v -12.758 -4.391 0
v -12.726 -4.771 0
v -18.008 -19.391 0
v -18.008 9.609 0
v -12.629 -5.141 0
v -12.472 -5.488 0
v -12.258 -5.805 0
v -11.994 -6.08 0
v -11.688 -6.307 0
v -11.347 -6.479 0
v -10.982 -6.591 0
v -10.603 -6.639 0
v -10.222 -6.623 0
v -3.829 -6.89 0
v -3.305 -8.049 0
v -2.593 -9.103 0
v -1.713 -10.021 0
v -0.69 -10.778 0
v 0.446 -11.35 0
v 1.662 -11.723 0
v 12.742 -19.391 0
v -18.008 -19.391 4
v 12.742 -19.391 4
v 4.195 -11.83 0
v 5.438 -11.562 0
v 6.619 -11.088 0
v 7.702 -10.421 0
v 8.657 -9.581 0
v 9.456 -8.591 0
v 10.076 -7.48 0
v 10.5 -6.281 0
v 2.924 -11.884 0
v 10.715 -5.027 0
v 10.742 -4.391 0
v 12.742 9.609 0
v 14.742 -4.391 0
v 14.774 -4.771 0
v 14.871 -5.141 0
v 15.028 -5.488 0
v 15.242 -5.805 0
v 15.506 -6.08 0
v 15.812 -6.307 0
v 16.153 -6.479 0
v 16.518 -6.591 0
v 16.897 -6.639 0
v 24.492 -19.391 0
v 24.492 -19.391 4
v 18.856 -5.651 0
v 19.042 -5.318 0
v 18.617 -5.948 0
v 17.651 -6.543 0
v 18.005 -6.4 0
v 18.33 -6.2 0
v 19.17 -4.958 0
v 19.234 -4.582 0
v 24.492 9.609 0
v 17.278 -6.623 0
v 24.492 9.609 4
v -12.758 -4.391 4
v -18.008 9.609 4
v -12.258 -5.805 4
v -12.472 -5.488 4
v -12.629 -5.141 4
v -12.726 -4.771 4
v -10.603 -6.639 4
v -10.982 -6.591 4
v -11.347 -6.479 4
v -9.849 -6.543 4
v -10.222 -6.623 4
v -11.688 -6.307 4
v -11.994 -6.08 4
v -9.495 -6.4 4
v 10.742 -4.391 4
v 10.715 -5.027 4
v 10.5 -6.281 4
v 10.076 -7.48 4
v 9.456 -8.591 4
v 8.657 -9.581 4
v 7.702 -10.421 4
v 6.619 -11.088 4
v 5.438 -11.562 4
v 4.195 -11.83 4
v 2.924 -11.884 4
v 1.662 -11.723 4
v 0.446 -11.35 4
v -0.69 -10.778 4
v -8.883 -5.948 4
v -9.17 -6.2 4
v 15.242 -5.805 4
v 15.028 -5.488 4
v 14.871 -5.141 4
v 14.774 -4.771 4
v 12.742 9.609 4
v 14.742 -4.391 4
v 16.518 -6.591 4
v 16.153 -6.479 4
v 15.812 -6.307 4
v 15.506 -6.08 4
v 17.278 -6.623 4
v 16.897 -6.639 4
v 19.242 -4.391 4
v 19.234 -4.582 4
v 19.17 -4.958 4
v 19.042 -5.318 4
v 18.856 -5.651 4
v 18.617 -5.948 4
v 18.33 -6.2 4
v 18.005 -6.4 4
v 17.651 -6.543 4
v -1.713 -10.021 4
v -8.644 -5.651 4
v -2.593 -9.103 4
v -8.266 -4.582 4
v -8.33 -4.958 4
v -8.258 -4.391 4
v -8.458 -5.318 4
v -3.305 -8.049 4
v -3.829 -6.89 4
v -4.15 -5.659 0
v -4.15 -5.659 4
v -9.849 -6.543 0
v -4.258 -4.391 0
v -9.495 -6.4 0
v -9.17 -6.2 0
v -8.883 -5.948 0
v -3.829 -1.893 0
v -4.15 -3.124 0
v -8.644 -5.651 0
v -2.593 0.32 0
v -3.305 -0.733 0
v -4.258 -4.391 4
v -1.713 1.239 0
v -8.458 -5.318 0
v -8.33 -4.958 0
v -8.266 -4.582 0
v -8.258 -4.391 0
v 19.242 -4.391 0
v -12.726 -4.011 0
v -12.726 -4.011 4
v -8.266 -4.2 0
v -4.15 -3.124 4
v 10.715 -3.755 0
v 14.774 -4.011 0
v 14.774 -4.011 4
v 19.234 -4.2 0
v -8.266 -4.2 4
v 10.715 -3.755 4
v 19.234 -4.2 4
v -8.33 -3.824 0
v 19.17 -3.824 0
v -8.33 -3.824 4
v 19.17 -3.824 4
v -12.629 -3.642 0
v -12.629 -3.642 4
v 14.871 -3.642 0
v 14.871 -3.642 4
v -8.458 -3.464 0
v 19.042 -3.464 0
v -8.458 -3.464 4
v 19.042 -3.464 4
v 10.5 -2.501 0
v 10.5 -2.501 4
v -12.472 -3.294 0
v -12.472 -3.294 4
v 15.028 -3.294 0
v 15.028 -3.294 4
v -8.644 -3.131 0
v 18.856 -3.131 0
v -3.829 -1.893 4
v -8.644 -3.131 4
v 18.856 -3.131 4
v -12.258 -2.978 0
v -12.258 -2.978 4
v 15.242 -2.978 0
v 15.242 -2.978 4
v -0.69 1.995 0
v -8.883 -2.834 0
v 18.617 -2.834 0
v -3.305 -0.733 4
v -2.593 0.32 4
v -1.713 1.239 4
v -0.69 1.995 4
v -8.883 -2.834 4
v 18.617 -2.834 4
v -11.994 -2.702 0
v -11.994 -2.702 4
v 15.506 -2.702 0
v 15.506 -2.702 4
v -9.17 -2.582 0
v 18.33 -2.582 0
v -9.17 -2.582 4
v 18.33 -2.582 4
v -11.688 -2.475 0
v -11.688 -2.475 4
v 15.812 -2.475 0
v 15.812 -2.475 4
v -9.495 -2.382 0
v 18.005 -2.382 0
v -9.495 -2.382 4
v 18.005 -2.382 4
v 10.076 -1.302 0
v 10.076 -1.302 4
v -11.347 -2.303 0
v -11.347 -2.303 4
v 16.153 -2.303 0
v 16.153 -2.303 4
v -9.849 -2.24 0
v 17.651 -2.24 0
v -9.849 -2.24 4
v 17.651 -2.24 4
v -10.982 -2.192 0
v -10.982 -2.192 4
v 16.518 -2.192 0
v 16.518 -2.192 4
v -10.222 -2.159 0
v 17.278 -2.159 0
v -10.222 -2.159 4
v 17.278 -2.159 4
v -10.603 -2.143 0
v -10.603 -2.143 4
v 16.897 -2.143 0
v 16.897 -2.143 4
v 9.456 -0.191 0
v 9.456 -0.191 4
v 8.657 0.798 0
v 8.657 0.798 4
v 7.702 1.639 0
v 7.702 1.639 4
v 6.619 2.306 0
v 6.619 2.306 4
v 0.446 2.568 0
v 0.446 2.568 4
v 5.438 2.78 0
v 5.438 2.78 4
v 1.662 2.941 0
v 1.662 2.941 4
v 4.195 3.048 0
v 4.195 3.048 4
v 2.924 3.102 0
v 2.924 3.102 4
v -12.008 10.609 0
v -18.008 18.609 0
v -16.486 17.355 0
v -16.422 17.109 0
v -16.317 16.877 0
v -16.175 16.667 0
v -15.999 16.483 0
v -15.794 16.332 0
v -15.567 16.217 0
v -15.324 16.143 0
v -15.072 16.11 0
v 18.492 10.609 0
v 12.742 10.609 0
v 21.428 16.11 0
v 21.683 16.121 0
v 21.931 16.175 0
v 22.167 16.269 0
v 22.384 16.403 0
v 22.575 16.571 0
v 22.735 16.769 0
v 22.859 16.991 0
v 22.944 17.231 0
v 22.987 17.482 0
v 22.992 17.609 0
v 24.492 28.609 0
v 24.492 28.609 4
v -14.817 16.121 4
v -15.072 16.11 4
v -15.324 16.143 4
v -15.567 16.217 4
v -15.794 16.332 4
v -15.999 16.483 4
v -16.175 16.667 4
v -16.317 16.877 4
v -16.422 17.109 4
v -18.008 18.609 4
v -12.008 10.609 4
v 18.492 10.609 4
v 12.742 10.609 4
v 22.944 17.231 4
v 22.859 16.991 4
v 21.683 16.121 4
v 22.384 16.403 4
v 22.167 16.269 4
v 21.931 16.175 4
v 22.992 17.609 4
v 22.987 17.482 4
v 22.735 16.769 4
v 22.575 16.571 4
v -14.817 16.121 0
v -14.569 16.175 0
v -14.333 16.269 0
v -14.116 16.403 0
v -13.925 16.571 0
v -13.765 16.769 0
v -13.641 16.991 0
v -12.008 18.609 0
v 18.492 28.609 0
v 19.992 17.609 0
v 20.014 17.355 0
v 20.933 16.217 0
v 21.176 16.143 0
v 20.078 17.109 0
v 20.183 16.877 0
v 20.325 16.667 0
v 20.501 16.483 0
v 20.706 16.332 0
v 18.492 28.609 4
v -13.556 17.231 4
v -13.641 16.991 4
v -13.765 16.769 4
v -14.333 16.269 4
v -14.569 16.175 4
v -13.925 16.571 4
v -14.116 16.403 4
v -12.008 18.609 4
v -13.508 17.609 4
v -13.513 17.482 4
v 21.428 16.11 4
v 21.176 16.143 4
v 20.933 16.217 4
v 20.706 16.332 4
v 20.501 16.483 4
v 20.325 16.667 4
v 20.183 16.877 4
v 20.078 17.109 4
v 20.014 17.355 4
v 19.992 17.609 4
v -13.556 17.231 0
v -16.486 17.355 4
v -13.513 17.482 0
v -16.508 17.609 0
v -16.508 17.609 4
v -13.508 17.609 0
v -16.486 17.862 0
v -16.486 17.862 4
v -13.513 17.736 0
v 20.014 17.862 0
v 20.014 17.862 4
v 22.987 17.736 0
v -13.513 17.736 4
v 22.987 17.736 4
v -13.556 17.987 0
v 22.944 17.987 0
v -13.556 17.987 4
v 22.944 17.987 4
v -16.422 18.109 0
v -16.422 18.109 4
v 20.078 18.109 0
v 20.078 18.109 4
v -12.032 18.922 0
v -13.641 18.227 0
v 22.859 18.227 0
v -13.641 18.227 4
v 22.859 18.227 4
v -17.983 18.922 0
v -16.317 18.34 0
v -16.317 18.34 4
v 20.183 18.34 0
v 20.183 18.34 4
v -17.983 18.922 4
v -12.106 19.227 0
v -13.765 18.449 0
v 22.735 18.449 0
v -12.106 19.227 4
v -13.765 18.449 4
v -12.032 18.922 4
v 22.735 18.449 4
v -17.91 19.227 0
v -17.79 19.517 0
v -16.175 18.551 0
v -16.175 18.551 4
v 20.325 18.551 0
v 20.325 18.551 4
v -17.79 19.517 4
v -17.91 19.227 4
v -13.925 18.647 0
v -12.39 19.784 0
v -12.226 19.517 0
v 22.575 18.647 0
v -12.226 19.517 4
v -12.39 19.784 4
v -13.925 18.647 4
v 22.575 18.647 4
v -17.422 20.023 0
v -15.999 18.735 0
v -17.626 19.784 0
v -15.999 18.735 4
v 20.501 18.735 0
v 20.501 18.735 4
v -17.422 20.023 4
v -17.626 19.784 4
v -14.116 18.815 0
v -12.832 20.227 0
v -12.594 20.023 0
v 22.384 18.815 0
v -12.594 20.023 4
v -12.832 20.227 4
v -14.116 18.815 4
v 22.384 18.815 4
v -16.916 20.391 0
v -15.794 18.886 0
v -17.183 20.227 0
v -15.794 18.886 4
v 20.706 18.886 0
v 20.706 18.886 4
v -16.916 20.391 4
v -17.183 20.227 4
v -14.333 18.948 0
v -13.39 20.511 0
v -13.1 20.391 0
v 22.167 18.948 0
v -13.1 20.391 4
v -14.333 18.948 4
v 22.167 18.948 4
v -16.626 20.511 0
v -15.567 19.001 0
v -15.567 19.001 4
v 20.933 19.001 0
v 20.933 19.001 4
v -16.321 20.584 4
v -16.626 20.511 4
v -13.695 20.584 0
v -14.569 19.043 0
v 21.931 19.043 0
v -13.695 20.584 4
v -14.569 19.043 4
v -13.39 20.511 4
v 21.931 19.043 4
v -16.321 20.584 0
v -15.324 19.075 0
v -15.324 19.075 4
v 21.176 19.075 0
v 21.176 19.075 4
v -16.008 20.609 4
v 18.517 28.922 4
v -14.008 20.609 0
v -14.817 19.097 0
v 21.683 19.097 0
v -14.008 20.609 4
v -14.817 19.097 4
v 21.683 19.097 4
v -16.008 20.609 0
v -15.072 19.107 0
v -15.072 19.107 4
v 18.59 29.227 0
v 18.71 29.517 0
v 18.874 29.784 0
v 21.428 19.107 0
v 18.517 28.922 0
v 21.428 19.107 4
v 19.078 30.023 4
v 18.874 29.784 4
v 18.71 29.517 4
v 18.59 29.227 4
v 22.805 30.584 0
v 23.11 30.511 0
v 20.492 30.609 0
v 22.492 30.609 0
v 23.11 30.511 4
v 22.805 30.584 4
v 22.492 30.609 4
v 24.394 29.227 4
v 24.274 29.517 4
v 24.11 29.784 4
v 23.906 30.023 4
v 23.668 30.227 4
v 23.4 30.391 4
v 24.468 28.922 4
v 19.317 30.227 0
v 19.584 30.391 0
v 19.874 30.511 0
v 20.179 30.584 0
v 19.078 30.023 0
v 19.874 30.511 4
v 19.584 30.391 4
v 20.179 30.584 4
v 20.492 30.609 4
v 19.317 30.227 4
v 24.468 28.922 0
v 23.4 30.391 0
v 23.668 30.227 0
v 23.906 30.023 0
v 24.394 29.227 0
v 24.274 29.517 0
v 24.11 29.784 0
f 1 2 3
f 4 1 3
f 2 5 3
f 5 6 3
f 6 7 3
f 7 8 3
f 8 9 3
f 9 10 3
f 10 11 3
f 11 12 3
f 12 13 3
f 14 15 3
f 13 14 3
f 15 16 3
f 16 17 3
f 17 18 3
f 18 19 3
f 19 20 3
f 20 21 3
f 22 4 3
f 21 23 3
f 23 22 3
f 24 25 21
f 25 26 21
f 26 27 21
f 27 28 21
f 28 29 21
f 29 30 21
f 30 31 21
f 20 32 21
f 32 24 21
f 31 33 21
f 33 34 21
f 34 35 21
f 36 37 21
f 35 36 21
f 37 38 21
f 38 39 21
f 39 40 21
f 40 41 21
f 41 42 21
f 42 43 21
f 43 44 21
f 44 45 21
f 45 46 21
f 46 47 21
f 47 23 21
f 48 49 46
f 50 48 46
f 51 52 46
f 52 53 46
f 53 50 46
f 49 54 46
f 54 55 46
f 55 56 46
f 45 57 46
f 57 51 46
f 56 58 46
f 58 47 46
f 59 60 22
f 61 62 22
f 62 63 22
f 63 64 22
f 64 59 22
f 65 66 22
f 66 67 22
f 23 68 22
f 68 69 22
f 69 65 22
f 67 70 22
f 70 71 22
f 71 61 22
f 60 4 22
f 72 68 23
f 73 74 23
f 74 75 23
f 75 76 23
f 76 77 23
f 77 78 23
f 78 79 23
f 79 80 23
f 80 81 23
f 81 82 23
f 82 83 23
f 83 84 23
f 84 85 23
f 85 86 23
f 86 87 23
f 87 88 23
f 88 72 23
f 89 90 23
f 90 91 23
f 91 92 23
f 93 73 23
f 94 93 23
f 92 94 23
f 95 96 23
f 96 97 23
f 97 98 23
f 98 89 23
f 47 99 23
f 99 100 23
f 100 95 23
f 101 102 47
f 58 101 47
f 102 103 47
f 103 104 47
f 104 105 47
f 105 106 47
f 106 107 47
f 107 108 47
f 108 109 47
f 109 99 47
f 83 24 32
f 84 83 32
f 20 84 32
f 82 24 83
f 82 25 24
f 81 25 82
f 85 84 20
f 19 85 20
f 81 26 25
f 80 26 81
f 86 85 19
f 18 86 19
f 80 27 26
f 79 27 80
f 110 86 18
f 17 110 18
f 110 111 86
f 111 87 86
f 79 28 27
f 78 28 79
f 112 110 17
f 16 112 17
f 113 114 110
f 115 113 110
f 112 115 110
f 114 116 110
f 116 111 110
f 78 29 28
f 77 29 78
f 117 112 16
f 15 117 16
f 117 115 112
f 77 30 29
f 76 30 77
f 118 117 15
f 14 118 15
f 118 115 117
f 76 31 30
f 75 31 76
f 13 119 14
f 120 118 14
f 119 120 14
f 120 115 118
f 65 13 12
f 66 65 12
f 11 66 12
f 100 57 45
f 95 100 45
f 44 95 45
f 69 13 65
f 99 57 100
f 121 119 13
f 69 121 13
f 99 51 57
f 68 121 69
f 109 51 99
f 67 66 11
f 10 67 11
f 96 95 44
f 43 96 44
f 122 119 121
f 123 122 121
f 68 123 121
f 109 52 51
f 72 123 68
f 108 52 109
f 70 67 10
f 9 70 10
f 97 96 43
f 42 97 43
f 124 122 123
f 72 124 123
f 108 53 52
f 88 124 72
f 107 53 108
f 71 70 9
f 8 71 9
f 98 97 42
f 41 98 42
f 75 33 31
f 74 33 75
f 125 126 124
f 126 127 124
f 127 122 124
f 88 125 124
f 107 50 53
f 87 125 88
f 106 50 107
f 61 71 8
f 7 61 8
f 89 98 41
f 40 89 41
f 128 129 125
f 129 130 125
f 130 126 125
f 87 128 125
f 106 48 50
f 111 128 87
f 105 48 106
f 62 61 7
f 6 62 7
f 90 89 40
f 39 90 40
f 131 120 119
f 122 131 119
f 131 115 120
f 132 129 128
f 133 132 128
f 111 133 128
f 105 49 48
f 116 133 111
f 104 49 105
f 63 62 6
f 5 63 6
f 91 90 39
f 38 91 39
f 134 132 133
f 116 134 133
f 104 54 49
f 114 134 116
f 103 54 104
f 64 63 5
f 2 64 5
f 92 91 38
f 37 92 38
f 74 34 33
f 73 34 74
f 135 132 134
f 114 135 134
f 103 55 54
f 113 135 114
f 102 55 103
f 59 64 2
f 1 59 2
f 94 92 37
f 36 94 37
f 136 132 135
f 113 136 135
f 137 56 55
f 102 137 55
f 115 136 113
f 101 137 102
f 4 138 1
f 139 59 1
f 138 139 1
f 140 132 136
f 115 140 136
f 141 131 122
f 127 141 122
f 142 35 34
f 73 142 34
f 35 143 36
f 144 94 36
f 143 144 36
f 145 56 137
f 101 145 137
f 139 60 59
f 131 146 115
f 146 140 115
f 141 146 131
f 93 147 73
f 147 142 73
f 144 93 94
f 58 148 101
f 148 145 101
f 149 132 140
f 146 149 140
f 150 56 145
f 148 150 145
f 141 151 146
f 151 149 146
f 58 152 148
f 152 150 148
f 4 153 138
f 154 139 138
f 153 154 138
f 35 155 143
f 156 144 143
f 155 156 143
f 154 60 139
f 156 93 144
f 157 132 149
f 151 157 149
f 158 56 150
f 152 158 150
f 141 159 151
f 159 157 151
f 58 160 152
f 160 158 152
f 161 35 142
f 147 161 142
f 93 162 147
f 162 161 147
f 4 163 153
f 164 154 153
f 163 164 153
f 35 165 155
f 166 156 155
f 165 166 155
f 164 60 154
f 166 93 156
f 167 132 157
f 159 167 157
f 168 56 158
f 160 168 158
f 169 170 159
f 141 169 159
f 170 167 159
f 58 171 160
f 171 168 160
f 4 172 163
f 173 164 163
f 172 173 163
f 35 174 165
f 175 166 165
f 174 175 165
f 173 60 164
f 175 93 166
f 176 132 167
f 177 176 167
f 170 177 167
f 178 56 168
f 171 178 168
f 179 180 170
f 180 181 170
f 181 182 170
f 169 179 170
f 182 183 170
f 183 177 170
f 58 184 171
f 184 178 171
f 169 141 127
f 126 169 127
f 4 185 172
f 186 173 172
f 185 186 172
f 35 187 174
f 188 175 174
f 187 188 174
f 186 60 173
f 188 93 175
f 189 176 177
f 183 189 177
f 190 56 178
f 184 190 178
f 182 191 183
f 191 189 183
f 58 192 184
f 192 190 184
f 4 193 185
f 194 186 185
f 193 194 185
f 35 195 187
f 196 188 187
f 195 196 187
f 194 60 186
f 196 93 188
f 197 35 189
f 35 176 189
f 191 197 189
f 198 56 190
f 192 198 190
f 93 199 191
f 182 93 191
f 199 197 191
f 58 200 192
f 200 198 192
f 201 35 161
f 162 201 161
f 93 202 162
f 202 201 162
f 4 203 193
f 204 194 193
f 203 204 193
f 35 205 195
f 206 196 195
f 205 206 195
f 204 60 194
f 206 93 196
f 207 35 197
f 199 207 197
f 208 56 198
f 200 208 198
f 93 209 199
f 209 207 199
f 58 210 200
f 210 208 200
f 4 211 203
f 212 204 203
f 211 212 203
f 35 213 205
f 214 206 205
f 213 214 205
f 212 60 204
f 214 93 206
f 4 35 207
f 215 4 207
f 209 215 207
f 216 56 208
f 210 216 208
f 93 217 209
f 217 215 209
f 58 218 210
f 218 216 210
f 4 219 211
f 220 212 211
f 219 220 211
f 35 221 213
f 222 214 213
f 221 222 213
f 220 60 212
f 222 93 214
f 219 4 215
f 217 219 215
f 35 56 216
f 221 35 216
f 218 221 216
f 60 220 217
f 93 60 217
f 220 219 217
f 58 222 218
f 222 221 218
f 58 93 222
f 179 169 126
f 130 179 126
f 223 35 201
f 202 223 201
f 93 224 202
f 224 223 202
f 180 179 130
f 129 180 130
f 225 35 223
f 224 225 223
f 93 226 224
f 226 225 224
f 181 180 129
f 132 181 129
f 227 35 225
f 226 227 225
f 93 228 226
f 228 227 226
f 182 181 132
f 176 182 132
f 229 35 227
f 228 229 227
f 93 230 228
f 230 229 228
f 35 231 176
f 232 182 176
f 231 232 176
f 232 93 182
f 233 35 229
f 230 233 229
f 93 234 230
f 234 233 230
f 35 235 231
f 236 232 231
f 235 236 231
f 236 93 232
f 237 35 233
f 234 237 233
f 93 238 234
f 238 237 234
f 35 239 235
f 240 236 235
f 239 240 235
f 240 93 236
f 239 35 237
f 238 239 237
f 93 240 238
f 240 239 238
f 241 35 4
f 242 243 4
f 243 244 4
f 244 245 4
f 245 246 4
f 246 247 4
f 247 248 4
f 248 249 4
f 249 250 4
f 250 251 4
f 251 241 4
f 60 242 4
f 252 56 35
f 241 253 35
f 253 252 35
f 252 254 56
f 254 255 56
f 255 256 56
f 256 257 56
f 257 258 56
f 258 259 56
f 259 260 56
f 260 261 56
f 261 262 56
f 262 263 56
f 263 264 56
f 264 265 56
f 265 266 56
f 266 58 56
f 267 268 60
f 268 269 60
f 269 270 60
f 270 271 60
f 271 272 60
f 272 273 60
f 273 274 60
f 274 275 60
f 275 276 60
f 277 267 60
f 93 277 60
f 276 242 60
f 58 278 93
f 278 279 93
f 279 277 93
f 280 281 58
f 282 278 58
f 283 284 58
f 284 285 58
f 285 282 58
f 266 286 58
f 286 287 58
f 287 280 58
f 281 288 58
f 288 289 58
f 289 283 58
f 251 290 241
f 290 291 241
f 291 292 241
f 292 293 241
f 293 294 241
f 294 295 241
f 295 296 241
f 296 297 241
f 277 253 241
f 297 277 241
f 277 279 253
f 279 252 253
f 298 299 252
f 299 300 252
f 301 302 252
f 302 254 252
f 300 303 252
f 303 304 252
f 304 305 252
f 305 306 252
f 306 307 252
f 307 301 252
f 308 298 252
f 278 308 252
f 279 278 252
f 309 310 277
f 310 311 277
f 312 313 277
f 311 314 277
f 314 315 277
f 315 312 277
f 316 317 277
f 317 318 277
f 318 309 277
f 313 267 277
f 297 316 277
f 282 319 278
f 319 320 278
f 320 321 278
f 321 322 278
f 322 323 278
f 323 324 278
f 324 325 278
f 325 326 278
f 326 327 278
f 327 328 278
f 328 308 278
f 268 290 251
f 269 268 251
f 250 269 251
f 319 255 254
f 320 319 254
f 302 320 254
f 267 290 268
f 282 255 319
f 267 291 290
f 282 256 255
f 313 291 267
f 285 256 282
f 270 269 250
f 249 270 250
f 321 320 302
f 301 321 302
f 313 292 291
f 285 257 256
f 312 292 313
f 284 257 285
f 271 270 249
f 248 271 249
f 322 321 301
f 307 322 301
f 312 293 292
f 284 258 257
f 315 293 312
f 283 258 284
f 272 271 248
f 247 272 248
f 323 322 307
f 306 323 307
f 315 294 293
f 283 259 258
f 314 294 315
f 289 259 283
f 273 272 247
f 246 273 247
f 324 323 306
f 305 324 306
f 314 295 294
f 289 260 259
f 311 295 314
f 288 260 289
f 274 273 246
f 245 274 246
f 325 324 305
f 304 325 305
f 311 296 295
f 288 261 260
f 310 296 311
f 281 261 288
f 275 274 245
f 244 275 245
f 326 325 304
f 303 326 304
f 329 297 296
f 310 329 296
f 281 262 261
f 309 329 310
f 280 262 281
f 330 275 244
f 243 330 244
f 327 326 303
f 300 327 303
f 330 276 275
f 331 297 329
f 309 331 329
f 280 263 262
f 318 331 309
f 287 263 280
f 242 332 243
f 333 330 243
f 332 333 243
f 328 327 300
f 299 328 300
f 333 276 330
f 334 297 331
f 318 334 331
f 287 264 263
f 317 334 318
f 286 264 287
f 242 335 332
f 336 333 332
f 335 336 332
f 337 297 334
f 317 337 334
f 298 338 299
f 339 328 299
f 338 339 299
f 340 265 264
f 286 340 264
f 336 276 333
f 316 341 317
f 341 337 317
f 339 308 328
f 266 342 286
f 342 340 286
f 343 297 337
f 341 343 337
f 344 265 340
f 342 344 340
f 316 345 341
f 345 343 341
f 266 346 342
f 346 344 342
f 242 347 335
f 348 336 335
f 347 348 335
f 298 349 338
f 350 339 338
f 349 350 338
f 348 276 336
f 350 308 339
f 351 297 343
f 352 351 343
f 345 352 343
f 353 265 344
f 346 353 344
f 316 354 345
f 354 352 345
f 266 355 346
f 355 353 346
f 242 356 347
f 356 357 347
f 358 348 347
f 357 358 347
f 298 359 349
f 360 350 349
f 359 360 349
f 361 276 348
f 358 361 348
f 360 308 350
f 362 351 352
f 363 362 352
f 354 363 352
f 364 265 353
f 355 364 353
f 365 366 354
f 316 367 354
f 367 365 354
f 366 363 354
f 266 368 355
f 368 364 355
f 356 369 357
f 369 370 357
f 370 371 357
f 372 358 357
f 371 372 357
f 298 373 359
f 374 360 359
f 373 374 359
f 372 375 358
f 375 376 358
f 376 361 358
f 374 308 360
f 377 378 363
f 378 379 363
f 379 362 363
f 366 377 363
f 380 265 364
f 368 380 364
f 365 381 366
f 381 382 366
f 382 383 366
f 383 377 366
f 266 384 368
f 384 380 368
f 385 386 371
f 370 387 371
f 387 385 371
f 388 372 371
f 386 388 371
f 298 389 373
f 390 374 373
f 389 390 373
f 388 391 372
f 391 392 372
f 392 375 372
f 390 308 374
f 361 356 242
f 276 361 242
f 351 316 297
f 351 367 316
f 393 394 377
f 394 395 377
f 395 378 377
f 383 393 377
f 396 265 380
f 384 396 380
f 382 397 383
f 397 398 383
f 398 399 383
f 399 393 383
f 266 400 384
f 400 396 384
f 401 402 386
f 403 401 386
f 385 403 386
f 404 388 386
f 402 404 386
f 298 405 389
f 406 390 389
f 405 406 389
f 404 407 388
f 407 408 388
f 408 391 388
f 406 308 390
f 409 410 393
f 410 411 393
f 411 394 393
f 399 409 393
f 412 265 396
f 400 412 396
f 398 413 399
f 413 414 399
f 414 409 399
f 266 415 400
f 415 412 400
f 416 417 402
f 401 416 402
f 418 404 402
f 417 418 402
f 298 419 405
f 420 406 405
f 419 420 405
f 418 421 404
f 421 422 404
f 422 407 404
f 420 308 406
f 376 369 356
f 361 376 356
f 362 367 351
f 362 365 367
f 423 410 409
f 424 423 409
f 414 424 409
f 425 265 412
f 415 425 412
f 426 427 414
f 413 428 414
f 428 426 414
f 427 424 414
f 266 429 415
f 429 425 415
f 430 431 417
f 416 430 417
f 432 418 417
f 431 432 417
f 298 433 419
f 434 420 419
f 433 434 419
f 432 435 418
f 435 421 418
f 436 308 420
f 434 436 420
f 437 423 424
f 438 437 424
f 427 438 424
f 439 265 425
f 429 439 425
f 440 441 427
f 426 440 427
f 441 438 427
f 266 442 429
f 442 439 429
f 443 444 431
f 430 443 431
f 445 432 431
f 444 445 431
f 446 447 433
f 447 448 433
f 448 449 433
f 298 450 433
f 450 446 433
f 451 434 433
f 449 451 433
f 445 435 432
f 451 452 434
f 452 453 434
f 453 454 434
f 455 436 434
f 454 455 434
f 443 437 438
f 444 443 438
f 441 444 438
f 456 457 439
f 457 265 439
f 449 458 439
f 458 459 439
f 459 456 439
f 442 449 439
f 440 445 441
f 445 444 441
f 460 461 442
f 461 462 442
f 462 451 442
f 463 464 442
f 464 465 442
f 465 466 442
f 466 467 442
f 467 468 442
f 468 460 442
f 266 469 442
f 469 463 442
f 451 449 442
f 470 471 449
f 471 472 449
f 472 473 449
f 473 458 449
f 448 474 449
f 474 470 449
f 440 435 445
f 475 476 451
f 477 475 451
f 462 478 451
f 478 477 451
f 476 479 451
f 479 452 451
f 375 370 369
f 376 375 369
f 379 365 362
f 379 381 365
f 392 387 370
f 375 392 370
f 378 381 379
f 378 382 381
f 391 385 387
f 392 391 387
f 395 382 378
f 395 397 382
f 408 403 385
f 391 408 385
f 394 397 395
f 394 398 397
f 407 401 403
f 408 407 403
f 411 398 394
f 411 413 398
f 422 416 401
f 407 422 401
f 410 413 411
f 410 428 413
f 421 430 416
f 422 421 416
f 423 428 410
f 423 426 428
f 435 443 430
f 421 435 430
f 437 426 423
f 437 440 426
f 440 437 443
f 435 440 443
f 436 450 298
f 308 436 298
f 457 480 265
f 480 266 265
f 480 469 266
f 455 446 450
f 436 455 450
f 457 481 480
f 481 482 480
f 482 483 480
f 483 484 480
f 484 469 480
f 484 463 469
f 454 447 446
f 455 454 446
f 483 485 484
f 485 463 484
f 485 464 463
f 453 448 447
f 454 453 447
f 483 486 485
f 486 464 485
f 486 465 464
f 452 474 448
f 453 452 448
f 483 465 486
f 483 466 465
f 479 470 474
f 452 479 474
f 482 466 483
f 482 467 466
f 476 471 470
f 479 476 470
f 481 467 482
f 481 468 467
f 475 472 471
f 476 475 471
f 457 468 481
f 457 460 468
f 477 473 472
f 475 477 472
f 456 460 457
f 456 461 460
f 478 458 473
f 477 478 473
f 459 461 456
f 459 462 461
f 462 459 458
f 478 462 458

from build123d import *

# Parameters (mm, degrees)
SKETCH_1_R      = 1.5
SKETCH_1_R_2    = 2.25
SKETCH_1_R_3    = 7.5
EXTRUDE_1_DEPTH = 4
FILLET_1_R      = 2


with BuildPart() as part:
    # 草图1 → 凸台-拉伸1 (new body)
    with BuildSketch(Plane.XY):
        Polygon((-18.007870082, 20.608843809), (-18.007870082, -13.606505187), (-18.007870082, -19.391156191), (24.492129918, -19.391156191), (24.492129918, 30.608843809), (18.492129918, 30.608843809), (18.492129918, 10.608843809), (-12.007870082, 10.608843809), (-12.007870082, 20.608843809), align=None)
        with Locations((-15.007870082, 17.608843809)):
            Circle(SKETCH_1_R, mode=Mode.SUBTRACT)
        with Locations((21.492129918, 17.608843809)):
            Circle(SKETCH_1_R, mode=Mode.SUBTRACT)
        with Locations((-10.507870082, -4.391156191)):
            Circle(SKETCH_1_R_2, mode=Mode.SUBTRACT)
        with Locations((16.992129918, -4.391156191)):
            Circle(SKETCH_1_R_2, mode=Mode.SUBTRACT)
        with Locations((3.242129918, -4.391156191)):
            Circle(SKETCH_1_R_3, mode=Mode.SUBTRACT)
    extrude(amount=EXTRUDE_1_DEPTH)

    # 圆角1
    fillet_1_edges = [part.edges().sort_by_distance(p)[0] for p in [
        (-12.007870082, 20.608843809, 2),
        (18.492129918, 30.608843809, 2),
        (24.492129918, 30.608843809, 2),
        (-18.007870082, 20.608843809, 2),
    ]]
    fillet(fillet_1_edges, radius=FILLET_1_R)


solid = part.part
